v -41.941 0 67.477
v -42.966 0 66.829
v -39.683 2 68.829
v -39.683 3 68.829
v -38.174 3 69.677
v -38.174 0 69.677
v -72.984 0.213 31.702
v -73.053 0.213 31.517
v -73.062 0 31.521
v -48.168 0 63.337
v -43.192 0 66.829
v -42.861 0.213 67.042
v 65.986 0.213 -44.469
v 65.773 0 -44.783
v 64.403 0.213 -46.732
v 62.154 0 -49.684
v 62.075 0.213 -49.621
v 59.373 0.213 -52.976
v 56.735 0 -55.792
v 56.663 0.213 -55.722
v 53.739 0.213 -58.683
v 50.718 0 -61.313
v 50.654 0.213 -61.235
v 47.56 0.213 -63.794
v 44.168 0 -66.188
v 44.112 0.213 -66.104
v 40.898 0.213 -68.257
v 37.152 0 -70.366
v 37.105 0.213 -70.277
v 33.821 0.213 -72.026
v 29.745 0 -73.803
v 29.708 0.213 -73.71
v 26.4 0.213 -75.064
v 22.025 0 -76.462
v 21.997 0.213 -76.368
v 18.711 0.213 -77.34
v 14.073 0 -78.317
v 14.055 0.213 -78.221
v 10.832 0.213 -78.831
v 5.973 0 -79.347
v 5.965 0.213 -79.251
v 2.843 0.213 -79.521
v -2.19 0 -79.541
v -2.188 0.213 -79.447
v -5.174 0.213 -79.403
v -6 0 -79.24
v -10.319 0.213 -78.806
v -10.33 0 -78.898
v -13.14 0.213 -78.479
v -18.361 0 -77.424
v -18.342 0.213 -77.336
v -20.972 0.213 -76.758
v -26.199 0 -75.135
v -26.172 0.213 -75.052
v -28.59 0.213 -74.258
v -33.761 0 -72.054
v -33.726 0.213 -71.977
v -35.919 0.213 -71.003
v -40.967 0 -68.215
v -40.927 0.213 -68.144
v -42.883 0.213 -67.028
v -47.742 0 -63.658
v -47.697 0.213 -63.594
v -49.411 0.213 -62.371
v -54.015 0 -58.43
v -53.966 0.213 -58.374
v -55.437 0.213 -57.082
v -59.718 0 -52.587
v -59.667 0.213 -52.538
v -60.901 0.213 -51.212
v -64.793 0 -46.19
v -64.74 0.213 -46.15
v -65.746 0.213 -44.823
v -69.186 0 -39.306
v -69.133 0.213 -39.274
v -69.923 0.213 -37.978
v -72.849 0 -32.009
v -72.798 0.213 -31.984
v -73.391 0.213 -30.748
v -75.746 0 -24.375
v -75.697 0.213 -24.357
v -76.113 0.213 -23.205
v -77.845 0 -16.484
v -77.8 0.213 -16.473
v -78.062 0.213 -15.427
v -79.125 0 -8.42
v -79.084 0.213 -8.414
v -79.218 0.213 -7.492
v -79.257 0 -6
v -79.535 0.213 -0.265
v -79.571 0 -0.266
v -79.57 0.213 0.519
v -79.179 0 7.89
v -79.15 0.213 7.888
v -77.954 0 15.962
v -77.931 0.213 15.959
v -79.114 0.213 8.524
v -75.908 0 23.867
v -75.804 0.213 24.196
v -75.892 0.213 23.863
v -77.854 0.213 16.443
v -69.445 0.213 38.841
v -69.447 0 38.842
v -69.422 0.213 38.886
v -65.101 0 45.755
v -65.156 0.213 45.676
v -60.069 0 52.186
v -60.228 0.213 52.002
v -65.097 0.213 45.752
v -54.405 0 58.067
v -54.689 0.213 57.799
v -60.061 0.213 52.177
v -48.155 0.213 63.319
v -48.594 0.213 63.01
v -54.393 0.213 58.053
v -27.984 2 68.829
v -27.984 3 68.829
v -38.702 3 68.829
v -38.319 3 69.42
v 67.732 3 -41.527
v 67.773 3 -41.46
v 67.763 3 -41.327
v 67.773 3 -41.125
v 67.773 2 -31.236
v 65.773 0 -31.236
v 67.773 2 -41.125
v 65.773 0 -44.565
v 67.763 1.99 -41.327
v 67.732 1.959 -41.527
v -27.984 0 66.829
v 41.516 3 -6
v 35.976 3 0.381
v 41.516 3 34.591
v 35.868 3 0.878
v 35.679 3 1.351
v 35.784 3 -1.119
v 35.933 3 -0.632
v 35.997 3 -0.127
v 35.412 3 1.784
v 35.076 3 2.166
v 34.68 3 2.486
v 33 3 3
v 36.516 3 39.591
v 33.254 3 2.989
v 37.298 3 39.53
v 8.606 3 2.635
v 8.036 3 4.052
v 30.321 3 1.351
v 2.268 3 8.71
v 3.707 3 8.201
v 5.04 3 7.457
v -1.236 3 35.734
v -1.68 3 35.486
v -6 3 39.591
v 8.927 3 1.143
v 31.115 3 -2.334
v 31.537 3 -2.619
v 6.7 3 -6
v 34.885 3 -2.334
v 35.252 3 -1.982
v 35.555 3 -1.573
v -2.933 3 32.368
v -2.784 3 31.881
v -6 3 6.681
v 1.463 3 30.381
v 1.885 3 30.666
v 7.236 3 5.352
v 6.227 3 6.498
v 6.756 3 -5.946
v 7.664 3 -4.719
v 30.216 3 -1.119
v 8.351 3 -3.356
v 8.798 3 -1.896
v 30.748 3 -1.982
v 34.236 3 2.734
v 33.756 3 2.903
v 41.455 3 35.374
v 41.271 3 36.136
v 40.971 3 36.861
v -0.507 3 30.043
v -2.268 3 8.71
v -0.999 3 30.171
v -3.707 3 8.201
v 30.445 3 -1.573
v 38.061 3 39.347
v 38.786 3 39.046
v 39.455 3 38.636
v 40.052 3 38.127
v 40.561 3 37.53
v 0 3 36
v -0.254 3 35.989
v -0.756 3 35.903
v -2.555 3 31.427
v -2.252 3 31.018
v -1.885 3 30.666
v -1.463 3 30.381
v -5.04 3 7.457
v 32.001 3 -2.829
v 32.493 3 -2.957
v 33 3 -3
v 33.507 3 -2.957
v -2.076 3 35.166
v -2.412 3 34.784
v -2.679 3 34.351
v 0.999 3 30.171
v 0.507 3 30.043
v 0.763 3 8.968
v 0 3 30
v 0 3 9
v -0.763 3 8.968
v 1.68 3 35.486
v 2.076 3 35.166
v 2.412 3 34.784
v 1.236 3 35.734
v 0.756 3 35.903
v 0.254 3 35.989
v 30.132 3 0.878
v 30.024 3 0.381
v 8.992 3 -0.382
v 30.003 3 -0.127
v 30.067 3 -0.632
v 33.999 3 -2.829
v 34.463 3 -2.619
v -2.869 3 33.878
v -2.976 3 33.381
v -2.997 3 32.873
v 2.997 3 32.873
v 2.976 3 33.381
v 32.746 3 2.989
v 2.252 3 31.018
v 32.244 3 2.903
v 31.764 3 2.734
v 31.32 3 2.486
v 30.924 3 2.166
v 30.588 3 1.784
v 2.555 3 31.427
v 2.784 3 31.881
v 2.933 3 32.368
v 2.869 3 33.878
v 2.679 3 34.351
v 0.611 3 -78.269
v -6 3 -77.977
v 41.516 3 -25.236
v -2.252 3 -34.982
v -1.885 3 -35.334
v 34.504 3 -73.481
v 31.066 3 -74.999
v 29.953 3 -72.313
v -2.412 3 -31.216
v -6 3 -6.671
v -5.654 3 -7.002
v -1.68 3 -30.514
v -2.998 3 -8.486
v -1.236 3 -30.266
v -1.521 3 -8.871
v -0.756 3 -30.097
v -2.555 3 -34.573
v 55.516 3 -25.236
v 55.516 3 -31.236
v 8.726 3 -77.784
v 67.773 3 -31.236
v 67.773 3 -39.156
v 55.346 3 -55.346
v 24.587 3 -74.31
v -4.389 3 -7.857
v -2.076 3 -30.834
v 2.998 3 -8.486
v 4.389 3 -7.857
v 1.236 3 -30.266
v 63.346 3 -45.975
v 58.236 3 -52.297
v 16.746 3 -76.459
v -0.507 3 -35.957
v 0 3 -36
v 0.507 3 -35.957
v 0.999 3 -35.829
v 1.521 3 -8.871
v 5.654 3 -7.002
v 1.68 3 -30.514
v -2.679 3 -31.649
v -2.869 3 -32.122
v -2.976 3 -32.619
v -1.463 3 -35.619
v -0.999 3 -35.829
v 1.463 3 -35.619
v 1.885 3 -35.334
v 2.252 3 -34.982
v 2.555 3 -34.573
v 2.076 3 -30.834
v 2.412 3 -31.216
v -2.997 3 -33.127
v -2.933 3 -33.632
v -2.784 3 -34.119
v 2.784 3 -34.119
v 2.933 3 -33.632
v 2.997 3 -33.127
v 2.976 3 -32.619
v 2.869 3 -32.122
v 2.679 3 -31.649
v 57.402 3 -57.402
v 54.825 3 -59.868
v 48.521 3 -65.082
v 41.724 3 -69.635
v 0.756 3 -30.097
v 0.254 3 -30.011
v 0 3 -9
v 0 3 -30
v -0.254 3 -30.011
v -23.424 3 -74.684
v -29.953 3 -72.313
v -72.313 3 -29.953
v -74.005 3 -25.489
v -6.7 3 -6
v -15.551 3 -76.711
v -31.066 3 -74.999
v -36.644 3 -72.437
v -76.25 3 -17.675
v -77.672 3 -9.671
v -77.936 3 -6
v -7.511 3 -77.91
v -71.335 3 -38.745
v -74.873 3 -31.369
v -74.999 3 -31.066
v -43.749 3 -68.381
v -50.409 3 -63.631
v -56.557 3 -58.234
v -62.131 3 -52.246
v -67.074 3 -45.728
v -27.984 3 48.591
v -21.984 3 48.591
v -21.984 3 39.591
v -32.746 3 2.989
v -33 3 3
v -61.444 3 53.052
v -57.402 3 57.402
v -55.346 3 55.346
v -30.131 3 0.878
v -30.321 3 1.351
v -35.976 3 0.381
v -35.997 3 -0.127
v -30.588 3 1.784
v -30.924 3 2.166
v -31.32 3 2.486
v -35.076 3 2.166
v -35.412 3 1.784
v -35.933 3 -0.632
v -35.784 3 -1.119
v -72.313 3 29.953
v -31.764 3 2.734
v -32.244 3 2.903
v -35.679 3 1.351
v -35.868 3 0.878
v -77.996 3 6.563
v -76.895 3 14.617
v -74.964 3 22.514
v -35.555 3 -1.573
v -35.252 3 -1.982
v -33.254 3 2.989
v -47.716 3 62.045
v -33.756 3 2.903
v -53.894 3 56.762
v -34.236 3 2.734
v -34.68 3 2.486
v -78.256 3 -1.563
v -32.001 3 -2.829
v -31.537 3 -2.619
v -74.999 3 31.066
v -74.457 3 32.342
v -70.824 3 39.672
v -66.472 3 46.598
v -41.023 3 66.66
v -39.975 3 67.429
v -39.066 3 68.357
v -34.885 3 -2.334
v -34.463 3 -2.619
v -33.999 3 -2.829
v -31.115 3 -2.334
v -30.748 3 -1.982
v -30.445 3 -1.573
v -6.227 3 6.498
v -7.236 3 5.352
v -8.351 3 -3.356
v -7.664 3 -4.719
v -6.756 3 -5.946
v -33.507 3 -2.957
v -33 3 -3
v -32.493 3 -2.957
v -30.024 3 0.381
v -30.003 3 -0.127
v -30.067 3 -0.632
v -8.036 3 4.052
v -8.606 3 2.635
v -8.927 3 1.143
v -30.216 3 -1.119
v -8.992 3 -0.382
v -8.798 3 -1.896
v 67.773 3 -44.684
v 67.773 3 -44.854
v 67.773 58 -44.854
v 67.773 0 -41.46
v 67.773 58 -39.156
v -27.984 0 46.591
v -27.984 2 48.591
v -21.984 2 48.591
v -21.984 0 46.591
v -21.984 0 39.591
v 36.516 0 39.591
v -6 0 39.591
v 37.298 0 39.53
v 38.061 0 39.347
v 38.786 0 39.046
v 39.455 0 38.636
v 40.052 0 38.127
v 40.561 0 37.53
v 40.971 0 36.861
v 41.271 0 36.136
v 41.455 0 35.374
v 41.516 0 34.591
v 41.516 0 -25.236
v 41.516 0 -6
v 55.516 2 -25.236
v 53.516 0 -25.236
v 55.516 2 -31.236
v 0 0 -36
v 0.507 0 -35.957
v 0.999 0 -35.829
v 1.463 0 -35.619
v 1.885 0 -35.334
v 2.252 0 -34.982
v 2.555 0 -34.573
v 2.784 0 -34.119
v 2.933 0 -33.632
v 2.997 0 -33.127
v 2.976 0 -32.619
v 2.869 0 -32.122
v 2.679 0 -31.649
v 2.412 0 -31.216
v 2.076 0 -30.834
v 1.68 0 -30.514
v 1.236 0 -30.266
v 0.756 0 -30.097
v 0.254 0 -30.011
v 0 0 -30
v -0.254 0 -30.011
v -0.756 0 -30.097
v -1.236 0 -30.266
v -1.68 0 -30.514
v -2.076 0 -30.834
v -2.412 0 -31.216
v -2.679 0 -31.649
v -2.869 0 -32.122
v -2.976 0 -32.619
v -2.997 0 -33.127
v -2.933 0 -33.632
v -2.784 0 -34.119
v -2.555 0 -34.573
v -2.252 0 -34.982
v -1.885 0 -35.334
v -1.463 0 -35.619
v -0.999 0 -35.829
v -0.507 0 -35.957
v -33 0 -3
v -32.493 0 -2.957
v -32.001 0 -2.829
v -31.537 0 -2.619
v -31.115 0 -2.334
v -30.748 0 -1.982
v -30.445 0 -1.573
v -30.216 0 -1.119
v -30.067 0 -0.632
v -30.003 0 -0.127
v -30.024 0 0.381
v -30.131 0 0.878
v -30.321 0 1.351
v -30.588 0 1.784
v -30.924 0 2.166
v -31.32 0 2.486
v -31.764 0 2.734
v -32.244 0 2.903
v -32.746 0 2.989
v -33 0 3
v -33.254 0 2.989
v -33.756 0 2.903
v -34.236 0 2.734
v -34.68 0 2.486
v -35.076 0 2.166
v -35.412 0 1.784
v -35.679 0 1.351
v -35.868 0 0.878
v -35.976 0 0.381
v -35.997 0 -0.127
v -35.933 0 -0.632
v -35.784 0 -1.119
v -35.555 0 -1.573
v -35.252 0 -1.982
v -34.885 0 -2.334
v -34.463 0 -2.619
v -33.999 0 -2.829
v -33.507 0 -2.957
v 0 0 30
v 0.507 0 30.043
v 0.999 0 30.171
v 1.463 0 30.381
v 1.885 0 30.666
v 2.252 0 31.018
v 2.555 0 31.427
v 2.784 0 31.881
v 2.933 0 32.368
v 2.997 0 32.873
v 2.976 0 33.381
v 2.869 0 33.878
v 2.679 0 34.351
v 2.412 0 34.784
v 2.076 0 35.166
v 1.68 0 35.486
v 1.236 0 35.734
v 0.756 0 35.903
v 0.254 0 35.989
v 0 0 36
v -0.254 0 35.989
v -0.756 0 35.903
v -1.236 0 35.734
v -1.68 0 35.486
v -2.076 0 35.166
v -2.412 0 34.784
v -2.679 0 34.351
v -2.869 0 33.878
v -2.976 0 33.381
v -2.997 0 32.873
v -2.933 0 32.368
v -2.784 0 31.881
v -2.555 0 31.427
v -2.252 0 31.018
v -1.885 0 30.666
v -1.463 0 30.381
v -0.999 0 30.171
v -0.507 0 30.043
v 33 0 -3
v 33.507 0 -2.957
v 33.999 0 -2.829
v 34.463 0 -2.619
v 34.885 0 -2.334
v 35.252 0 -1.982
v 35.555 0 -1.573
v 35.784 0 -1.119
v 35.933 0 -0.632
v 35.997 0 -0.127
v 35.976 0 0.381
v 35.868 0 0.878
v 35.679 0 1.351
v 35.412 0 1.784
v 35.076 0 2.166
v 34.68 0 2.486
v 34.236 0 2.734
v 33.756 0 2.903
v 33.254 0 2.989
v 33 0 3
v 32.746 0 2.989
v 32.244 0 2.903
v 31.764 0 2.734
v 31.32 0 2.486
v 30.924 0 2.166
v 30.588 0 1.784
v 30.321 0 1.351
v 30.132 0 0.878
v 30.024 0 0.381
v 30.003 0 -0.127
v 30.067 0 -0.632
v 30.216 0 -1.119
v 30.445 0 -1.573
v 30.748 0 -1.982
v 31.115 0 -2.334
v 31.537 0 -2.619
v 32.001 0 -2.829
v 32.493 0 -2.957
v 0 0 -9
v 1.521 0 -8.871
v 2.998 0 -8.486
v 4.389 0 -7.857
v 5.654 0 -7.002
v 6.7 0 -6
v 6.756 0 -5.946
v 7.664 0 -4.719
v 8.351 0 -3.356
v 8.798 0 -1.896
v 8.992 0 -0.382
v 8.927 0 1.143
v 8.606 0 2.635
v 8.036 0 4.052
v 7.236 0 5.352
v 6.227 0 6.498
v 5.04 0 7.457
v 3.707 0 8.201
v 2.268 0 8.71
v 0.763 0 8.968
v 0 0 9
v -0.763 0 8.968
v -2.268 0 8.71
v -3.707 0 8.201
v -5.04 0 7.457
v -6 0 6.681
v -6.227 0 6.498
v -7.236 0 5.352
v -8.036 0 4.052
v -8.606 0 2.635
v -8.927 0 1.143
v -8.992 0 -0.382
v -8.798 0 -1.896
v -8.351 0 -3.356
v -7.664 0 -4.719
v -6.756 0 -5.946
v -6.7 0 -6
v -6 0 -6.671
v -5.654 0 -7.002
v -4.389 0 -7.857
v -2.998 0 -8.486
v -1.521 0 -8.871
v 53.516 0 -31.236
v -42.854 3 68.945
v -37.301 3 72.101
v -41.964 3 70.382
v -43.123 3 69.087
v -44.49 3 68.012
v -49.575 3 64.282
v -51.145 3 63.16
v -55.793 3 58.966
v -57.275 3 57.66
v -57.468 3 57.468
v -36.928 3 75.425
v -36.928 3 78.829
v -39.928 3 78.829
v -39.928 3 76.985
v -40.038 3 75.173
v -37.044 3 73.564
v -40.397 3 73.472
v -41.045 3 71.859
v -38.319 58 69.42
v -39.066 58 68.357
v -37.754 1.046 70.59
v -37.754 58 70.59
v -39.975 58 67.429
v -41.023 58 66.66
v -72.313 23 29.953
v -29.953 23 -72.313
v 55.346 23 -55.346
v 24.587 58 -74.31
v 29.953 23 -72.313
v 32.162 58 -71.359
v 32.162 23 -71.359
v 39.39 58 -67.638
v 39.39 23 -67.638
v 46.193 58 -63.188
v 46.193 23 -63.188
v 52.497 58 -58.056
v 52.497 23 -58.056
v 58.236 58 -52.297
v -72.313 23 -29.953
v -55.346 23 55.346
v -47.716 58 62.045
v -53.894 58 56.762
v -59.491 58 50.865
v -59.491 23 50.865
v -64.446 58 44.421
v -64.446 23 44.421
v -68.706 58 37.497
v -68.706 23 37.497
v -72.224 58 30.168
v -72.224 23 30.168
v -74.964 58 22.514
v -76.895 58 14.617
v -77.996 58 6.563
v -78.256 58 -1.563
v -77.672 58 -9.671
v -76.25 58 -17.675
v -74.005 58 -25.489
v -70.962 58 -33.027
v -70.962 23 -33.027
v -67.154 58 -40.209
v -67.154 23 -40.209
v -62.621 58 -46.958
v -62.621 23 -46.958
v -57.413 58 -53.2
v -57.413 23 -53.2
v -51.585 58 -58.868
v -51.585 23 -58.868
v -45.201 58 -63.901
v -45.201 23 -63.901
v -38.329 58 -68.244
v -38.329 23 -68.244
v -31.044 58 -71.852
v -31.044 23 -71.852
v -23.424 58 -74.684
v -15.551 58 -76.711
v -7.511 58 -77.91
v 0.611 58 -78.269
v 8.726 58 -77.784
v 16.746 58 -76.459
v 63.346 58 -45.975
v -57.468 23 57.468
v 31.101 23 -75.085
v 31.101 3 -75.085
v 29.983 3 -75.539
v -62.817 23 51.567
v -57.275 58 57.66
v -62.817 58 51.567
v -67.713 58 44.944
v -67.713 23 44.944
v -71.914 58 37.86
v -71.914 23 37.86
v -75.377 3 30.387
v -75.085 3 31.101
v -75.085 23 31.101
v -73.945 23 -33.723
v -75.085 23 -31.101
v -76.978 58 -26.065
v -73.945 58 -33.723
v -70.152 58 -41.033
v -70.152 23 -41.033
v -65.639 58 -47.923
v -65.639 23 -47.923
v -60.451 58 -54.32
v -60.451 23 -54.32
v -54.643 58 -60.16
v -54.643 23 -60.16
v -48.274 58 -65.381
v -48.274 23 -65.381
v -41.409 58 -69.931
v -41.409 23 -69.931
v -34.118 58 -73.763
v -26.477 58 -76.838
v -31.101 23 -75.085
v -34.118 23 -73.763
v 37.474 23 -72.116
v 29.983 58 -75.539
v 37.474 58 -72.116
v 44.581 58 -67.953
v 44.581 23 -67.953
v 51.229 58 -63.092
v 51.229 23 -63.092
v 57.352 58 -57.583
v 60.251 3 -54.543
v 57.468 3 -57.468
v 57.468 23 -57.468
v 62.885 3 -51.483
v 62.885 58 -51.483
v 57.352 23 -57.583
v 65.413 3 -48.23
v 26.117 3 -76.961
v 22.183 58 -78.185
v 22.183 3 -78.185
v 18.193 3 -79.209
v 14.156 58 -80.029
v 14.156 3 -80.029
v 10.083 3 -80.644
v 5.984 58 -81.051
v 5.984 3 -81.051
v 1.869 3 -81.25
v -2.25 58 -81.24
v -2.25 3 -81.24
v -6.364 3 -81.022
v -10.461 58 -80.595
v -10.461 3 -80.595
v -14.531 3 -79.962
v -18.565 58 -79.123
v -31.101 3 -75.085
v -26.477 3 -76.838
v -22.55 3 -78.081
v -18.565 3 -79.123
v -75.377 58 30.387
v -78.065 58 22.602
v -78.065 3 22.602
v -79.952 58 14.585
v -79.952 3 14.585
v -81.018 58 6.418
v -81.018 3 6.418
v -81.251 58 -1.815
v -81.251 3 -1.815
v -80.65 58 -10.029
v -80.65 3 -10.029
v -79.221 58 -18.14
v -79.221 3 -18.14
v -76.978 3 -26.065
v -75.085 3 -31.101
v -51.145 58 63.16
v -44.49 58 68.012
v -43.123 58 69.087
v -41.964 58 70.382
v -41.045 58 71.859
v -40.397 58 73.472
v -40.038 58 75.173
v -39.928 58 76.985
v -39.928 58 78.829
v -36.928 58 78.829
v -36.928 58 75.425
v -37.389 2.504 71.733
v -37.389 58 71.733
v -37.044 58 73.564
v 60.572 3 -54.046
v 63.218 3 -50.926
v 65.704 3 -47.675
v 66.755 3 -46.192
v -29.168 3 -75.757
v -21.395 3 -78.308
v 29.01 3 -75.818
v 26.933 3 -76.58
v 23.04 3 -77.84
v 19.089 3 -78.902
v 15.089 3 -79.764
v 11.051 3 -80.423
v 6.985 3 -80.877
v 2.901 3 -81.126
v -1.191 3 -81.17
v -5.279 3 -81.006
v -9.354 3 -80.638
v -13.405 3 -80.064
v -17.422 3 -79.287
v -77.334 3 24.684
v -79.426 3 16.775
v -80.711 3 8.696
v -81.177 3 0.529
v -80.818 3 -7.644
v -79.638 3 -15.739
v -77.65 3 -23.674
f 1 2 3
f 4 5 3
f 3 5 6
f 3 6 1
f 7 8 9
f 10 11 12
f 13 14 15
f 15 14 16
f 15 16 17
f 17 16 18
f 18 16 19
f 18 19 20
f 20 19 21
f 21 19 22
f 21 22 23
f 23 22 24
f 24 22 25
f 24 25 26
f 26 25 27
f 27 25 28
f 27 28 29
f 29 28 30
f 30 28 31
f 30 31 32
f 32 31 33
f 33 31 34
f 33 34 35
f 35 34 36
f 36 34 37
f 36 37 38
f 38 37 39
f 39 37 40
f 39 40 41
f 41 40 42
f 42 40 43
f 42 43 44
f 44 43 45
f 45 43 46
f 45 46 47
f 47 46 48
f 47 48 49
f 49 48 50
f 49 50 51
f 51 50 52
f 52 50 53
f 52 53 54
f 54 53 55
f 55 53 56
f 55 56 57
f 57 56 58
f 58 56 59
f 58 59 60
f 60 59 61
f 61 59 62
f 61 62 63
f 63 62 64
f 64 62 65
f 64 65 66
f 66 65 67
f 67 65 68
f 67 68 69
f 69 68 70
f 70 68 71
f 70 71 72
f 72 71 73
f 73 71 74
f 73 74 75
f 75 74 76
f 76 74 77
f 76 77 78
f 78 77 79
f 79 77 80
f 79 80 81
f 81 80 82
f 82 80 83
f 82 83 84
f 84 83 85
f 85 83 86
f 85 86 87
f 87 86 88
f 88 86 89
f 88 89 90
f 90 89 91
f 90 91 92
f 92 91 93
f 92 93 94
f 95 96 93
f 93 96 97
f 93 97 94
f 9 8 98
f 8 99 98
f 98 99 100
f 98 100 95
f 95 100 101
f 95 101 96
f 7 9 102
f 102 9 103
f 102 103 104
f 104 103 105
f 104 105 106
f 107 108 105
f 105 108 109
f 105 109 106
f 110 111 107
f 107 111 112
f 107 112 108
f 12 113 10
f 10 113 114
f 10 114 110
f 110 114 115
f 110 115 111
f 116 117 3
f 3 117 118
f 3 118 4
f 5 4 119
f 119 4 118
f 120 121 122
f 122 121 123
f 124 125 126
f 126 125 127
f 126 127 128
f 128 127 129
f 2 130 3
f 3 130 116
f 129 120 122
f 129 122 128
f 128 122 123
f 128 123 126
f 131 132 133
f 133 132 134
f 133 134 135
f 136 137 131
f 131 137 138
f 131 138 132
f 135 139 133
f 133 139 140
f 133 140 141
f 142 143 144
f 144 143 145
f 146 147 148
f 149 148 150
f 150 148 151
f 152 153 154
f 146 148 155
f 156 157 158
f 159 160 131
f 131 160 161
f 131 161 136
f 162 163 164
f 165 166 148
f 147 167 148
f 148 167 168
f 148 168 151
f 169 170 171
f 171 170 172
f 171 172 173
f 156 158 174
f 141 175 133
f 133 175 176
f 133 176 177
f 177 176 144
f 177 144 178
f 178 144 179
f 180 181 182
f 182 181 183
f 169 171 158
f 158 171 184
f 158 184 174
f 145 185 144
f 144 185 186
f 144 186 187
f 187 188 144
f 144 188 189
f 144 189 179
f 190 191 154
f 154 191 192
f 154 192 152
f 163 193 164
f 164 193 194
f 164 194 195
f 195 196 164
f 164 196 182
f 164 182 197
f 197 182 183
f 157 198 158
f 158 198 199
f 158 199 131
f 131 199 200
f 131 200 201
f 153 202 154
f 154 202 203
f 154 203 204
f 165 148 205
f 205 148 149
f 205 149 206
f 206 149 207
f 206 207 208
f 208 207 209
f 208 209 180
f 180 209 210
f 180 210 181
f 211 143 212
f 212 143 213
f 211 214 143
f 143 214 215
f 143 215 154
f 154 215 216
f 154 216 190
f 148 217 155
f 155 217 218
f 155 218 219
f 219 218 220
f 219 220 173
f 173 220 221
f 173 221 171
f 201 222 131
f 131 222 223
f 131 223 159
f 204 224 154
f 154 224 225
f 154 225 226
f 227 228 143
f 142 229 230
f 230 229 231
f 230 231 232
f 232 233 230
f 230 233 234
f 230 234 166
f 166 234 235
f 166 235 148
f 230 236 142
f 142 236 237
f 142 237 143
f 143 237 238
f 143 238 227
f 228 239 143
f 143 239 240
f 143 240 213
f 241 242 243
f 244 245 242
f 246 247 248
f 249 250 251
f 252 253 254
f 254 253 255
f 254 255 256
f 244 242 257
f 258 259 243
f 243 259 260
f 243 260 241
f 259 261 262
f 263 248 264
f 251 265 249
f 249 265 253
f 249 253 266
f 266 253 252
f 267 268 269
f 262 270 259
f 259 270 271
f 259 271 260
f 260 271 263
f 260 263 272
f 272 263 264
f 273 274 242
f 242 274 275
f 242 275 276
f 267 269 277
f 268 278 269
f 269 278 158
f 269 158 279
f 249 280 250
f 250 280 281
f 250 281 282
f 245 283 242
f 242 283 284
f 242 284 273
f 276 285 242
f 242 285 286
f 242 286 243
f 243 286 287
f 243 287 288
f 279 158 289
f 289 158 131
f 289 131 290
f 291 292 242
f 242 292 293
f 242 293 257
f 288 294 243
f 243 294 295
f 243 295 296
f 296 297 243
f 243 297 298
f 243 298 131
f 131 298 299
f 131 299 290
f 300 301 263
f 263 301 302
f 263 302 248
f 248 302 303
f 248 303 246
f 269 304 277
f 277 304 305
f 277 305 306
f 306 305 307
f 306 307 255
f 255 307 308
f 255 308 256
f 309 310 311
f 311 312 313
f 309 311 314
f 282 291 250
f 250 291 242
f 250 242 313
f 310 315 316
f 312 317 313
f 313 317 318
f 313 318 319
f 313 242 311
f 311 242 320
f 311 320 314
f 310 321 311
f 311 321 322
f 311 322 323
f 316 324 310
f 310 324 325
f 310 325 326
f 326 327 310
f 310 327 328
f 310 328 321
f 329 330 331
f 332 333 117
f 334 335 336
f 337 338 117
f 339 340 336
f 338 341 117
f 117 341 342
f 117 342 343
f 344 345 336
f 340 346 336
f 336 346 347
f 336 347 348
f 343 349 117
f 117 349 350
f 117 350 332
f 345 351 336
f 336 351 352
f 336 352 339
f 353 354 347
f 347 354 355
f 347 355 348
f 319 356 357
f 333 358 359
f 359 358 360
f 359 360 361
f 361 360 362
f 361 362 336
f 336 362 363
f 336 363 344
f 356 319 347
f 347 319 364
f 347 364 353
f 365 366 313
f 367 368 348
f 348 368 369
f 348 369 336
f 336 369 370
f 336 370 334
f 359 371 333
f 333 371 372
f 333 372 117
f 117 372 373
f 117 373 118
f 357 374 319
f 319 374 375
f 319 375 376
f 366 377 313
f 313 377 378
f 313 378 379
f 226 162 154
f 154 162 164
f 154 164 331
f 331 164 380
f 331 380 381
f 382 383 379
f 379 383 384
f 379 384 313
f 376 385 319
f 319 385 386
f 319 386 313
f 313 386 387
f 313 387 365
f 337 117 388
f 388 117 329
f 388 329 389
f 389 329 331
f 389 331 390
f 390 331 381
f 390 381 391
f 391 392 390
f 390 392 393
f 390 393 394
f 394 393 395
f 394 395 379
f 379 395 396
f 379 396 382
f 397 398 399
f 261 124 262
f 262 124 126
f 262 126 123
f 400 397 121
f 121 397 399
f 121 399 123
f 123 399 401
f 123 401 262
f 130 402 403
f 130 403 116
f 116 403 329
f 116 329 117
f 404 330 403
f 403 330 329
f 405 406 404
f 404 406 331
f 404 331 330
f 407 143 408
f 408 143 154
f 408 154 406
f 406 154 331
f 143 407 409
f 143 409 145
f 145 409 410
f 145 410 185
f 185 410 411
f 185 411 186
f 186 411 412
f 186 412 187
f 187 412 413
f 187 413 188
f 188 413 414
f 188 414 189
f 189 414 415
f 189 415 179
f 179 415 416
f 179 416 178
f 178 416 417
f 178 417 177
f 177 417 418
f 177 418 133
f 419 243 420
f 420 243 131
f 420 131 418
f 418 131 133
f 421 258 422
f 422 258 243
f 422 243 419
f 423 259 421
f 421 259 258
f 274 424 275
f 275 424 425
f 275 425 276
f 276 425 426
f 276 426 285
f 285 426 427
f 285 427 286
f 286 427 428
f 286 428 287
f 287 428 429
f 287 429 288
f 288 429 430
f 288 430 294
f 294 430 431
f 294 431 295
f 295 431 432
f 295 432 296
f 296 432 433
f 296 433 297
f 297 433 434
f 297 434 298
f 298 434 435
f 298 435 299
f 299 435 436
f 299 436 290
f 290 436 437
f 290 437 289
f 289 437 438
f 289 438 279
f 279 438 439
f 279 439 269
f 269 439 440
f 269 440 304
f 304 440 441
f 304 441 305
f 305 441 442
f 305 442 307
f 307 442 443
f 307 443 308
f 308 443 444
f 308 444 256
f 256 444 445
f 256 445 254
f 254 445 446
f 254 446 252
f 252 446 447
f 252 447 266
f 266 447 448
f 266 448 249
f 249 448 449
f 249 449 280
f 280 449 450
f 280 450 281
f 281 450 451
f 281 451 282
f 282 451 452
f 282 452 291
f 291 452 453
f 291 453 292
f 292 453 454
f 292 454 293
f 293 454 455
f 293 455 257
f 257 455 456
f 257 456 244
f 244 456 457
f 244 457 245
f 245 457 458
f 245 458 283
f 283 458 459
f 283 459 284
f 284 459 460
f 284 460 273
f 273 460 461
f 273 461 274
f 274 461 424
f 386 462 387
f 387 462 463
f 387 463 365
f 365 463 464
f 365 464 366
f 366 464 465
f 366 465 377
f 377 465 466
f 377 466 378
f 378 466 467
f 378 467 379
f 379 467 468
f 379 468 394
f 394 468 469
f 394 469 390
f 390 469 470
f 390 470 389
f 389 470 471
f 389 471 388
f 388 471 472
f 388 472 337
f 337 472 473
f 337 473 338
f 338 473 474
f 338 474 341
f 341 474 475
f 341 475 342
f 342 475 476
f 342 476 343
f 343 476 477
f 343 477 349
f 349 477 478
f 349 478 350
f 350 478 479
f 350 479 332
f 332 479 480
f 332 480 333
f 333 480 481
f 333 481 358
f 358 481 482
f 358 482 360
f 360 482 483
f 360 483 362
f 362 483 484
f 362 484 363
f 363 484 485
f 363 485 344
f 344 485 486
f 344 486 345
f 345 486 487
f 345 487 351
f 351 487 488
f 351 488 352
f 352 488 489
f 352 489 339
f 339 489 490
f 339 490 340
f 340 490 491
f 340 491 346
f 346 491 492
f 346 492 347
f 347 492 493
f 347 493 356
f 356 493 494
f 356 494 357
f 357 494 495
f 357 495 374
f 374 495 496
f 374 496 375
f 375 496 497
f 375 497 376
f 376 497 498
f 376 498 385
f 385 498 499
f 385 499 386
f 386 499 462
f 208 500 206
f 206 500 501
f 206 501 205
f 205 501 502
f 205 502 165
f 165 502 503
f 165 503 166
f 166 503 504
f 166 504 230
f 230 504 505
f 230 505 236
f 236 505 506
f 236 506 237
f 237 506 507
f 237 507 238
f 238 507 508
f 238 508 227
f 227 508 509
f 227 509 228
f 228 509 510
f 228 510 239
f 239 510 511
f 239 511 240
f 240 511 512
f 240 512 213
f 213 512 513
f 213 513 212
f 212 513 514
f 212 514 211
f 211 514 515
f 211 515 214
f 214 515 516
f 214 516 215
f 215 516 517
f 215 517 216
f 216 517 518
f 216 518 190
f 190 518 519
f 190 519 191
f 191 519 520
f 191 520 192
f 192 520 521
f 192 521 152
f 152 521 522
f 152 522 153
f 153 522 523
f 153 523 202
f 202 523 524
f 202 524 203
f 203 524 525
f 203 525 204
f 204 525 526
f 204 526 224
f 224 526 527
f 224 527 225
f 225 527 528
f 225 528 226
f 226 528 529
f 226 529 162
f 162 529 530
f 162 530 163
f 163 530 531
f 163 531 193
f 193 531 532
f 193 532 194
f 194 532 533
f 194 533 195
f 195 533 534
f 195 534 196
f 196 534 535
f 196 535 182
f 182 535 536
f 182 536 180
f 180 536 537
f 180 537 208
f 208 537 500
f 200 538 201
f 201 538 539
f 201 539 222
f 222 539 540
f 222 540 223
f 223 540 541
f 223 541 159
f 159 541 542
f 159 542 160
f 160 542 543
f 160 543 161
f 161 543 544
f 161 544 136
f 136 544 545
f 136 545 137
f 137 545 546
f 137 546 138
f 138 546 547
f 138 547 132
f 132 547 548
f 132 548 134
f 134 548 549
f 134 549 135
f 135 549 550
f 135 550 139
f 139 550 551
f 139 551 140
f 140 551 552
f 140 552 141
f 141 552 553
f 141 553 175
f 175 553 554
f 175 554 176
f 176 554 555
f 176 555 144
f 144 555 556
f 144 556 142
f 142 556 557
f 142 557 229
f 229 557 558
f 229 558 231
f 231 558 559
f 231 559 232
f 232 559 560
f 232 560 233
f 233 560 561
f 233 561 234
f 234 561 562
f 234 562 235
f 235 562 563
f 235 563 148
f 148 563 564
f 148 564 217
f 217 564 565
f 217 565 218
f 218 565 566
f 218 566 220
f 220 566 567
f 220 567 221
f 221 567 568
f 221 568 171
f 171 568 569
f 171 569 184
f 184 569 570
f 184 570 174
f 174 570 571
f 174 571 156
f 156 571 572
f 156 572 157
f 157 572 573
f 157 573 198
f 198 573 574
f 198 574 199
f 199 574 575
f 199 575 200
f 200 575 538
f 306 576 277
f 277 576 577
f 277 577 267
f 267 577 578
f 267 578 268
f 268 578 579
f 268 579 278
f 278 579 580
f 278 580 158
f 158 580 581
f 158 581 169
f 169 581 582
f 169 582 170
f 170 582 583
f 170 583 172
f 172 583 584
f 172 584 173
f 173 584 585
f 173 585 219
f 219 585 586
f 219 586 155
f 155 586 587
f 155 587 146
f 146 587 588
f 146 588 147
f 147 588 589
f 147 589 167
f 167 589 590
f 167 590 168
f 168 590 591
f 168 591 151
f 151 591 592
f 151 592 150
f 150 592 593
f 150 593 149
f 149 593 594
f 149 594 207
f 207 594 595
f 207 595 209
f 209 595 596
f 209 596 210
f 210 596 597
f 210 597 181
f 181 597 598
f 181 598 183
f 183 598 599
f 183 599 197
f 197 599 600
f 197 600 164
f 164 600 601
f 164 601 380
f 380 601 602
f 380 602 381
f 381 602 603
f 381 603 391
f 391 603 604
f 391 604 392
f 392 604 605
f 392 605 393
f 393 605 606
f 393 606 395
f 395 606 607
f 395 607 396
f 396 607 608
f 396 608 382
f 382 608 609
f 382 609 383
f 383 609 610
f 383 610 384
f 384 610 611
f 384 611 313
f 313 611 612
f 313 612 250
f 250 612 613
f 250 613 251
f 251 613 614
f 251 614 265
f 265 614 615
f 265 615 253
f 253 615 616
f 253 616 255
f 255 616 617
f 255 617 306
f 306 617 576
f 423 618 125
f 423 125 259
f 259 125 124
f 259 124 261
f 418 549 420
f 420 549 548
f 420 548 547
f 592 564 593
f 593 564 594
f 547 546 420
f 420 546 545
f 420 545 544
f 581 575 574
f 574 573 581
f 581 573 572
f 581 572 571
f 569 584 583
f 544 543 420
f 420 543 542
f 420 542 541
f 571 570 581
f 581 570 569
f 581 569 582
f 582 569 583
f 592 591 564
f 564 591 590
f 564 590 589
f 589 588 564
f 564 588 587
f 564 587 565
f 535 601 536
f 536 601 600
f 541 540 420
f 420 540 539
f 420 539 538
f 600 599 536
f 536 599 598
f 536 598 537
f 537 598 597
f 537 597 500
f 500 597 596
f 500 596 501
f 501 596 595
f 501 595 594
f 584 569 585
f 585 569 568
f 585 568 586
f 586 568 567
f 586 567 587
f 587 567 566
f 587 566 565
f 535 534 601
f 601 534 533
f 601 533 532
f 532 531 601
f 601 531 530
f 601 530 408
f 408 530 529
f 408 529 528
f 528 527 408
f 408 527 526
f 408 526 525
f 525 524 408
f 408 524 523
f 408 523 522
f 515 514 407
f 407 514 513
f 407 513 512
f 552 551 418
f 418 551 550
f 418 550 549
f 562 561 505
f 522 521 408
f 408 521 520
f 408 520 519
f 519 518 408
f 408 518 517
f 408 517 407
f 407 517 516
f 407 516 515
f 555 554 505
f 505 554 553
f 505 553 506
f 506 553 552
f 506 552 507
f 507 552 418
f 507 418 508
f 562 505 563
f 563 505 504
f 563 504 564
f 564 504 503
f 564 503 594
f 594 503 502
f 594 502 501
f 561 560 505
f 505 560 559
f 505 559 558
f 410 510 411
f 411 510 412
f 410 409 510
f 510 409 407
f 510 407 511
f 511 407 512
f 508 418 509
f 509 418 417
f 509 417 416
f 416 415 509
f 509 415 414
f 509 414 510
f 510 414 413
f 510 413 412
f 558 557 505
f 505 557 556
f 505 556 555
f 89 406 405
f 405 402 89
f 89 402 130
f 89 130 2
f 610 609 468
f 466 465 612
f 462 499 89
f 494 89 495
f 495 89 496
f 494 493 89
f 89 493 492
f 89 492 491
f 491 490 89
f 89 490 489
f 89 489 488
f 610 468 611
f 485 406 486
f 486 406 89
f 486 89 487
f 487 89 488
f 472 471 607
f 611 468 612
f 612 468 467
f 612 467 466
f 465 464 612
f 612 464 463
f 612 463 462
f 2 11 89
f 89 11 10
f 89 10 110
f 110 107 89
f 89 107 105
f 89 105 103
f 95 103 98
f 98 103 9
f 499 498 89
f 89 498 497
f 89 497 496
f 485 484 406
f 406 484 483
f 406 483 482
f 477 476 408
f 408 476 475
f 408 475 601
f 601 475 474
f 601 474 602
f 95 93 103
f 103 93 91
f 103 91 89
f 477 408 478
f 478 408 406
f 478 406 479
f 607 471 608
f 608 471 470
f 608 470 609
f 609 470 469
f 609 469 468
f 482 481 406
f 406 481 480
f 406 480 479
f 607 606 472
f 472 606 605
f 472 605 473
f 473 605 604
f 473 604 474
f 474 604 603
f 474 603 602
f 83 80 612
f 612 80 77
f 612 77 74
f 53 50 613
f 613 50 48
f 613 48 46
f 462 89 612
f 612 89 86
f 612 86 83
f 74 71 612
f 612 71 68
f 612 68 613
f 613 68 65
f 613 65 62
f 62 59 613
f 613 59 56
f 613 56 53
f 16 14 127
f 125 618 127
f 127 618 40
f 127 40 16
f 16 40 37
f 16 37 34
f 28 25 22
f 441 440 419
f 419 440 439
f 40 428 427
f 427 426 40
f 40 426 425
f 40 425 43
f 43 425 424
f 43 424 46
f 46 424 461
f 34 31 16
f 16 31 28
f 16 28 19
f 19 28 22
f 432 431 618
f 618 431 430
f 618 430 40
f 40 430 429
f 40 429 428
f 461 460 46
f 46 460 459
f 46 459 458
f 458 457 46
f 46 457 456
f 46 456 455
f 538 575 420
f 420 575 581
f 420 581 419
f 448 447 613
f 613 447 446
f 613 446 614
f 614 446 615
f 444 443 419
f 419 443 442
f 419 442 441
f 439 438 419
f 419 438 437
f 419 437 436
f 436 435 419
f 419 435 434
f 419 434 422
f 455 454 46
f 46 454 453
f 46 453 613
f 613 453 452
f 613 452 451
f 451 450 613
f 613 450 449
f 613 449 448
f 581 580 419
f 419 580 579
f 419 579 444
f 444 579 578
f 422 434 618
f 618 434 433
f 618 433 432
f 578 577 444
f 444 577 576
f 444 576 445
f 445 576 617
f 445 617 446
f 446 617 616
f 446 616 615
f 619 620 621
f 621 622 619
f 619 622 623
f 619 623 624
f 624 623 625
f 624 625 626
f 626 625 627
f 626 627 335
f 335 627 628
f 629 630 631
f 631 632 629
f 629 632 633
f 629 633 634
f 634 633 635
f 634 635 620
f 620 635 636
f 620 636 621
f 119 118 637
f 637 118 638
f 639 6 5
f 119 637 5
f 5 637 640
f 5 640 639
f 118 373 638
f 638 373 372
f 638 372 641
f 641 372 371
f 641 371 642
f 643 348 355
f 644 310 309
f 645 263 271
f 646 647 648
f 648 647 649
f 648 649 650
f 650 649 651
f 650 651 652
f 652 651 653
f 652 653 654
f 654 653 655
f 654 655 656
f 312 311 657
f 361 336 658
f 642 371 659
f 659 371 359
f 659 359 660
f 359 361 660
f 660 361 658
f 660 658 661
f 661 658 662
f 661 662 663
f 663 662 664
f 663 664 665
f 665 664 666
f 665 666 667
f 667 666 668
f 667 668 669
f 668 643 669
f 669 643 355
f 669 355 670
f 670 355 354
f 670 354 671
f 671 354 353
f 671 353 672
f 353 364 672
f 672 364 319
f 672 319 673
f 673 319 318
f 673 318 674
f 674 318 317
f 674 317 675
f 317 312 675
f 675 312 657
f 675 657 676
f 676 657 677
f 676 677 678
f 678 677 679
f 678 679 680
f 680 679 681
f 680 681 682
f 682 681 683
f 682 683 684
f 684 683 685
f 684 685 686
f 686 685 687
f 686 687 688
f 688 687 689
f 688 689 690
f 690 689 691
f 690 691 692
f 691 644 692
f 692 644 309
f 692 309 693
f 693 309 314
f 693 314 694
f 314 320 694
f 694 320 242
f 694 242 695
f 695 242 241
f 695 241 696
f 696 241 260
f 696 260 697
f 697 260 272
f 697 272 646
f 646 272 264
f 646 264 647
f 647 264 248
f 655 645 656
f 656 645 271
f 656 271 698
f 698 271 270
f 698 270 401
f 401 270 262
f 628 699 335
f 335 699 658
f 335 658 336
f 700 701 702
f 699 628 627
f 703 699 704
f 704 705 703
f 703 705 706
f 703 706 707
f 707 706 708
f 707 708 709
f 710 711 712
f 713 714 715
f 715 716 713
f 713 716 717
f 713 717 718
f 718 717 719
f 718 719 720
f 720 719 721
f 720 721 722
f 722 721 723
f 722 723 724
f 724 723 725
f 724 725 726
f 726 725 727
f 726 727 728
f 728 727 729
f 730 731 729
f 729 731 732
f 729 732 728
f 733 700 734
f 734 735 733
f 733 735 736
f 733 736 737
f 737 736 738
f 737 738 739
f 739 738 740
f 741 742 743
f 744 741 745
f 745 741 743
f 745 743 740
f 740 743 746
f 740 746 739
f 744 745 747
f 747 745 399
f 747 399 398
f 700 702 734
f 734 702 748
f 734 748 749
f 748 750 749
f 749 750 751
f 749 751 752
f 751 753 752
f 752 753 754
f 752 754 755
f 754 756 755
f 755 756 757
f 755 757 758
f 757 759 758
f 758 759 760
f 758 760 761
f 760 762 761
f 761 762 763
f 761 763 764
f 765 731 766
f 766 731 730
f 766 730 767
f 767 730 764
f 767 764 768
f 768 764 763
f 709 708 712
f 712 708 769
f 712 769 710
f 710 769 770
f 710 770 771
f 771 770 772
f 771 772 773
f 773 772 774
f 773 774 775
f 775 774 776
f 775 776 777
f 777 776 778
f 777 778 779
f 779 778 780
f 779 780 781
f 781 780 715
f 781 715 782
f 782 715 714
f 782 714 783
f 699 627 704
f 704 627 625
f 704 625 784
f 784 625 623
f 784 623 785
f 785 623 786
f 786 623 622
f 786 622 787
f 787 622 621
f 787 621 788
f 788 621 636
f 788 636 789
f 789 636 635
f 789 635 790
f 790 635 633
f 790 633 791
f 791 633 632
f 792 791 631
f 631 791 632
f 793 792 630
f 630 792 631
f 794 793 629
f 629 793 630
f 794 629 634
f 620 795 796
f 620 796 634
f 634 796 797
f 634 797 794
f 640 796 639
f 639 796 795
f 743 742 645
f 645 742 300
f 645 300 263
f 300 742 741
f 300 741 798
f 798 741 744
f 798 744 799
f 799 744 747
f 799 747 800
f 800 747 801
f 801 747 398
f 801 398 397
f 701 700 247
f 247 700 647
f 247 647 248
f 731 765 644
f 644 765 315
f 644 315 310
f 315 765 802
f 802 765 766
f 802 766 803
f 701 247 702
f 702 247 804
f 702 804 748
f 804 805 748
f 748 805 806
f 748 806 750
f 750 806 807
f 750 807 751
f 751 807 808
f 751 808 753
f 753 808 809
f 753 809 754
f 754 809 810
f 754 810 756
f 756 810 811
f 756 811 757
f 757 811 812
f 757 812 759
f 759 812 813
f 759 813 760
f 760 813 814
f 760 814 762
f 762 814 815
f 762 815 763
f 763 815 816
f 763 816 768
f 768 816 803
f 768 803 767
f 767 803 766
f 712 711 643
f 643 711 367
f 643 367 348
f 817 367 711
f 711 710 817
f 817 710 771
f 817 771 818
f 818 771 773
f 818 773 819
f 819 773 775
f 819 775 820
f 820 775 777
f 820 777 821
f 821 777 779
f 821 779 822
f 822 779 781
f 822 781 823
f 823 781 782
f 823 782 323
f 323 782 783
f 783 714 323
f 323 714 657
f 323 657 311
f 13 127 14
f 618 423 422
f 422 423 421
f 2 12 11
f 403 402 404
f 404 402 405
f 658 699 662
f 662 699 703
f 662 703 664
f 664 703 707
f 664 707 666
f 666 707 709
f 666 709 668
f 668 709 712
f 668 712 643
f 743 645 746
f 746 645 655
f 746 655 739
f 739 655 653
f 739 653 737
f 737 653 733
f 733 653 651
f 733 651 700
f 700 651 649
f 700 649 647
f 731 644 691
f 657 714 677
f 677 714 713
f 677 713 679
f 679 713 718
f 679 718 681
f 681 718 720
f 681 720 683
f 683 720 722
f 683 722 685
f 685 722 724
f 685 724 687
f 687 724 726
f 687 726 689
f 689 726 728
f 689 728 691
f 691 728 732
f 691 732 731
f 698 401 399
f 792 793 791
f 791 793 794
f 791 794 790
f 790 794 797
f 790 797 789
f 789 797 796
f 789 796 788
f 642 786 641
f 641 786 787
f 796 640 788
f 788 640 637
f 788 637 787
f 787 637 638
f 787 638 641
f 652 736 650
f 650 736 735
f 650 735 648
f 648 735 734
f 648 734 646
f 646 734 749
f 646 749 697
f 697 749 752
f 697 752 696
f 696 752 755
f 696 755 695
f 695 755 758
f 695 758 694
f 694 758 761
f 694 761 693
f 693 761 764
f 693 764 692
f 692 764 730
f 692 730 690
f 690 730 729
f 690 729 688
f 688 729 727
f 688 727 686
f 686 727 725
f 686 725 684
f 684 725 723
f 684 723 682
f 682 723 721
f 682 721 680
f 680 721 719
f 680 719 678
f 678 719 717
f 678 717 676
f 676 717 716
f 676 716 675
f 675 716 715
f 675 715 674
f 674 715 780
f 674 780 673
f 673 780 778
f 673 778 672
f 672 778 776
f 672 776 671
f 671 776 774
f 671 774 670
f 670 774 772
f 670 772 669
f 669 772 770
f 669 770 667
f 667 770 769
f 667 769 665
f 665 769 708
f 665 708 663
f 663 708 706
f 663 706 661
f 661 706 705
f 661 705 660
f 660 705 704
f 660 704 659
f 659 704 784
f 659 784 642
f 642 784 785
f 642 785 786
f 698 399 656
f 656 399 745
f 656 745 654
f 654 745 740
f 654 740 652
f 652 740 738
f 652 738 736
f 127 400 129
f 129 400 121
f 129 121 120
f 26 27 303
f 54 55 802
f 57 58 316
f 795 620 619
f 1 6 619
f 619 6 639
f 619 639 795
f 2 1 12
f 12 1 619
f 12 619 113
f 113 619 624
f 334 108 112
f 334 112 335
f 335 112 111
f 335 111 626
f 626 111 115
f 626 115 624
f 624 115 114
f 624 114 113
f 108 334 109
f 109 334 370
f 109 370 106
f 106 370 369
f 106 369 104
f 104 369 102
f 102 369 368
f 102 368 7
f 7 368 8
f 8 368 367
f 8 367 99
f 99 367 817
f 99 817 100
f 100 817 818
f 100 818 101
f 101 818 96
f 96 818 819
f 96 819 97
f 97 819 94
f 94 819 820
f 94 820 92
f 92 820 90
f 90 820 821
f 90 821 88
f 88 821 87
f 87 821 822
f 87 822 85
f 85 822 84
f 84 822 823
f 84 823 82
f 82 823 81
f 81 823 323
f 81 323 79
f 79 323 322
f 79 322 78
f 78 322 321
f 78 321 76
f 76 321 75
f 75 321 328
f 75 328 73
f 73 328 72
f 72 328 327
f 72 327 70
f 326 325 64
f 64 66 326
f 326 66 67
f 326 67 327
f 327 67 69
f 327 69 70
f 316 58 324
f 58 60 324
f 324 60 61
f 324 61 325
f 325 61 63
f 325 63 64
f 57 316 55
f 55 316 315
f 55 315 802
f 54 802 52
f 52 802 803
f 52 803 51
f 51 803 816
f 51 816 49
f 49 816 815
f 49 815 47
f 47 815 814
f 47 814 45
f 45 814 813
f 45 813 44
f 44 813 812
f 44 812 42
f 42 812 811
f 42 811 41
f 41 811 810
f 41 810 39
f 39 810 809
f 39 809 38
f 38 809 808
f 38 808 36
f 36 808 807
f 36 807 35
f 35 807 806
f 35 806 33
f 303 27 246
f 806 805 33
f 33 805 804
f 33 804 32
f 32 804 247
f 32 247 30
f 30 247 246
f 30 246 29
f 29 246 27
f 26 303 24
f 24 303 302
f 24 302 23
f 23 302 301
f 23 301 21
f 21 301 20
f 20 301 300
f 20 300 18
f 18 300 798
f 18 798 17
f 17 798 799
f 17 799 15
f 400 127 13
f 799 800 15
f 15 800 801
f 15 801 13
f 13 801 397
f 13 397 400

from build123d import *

# Parameters (mm, degrees)
SKETCH1_R           = 9
SKETCH1_R_2         = 3
BOSS_EXTRUDE1_DEPTH = 3
BOSS_EXTRUDE5_DEPTH = 20
CHAMFER1_SIZE       = 2
CHAMFER2_SIZE       = 2
CHAMFER3_SIZE       = 2
CHAMFER4_SIZE       = 2
FILLET3_R           = 2
BOSS_EXTRUDE6_DEPTH = 35
CUT_EXTRUDE1_START  = -35
CUT_EXTRUDE1_DEPTH  = 35


with BuildPart() as part:
    # Sketch1 → Boss-Extrude1 (new body)
    with BuildSketch(Plane(origin=(0, 0, 0), x_dir=(1, 0, 0), z_dir=(0, 1, 0))):
        with BuildLine():
            Line((26.016071882, -39.591378024), (36.516071882, -39.591378024))
            ThreePointArc((36.516071882, -39.591378024), (40.051605788, -38.12691193), (41.516071882, -34.591378024))
            Line((41.516071882, -34.591378024), (41.516071882, -22.764050167))
            Line((41.516071882, -22.764050167), (41.516071882, 25.235949833))
            Line((41.516071882, 25.235949833), (55.516071882, 25.235949833))
            Line((55.516071882, 25.235949833), (55.516071882, 31.235949833))
            Line((55.516071882, 31.235949833), (67.773200773, 31.235949833))
            Line((67.773200773, 31.235949833), (67.773200773, 41.69443681))
            ThreePointArc((67.773200773, 41.69443681), (-56.98852563, 55.53324005), (-39.927712001, -68.828850188))
            Line((-39.927712001, -68.828850188), (-27.983928118, -68.828850188))
            Line((-27.983928118, -68.828850188), (-27.983928118, -48.591378024))
            Line((-27.983928118, -48.591378024), (-21.983928118, -48.591378024))
            Line((-21.983928118, -48.591378024), (-21.983928118, -39.591378024))
            Line((-21.983928118, -39.591378024), (26.016071882, -39.591378024))
        make_face()
        with Locations(Location((0, 0, 0), (0, 0, 270))):
            Circle(SKETCH1_R, mode=Mode.SUBTRACT)
        with Locations(Location((33, 0, 0), (0, 0, 270))):
            Circle(SKETCH1_R_2, mode=Mode.SUBTRACT)
        with Locations(Location((0, -33, 0), (0, 0, 270))):
            Circle(SKETCH1_R_2, mode=Mode.SUBTRACT)
        with Locations(Location((-33, 0, 0), (0, 0, 270))):
            Circle(SKETCH1_R_2, mode=Mode.SUBTRACT)
        with Locations(Location((0, 33, 0), (0, 0, 270))):
            Circle(SKETCH1_R_2, mode=Mode.SUBTRACT)
    extrude(amount=BOSS_EXTRUDE1_DEPTH)

    # Sketch2 → Boss-Extrude5 (add)
    with BuildSketch(Plane(origin=(0, 3, 0), x_dir=(1, 0, 0), z_dir=(0, 1, 0))):
        with BuildLine():
            Line((67.773200773, 39.156481082), (67.773200773, 44.853755219))
            ThreePointArc((67.773200773, 44.853755219), (62.937243445, 51.419543831), (57.467669607, 57.467669607))
            Line((57.467669607, 57.467669607), (55.346349264, 55.346349264))
            ThreePointArc((55.346349264, 55.346349264), (62.089724256, 47.658188126), (67.773200773, 39.156481082))
        make_face()
        with BuildLine():
            Line((-39.927712001, -76.985232291), (-39.927712001, -78.828850188))
            Line((-39.927712001, -78.828850188), (-36.927712001, -78.828850188))
            Line((-36.927712001, -78.828850188), (-36.927712001, -75.424551151))
            ThreePointArc((-36.927712001, -75.424551151), (-37.043512595, -73.56428019), (-37.389126407, -71.732731959))
            ThreePointArc((-37.389126407, -71.732731959), (-37.554188596, -71.15585041), (-37.753552772, -70.589907151))
            ThreePointArc((-37.753552772, -70.589907151), (-39.065927712, -68.356737552), (-41.023031213, -66.659940472))
            ThreePointArc((-41.023031213, -66.659940472), (-48.515602747, -61.422089217), (-55.346349264, -55.346349264))
            Line((-55.346349264, -55.346349264), (-57.467669607, -57.467669607))
            ThreePointArc((-57.467669607, -57.467669607), (-51.250804692, -63.074726465), (-44.490100887, -68.012476968))
            ThreePointArc((-44.490100887, -68.012476968), (-41.472337786, -71.100334086), (-40.037635444, -75.172604325))
            ThreePointArc((-40.037635444, -75.172604325), (-39.955218081, -76.077253312), (-39.927712001, -76.985232291))
        make_face()
        with BuildLine():
            Line((29.953228379, 72.313490189), (31.101278676, 75.085128787))
            ThreePointArc((31.101278676, 75.085128787), (0, 81.271557757), (-31.101278676, 75.085128787))
            Line((-31.101278676, 75.085128787), (-29.953228379, 72.313490189))
            ThreePointArc((-29.953228379, 72.313490189), (0, 78.271557757), (29.953228379, 72.313490189))
        make_face()
        with BuildLine():
            Line((-72.313490189, -29.953228379), (-75.085128787, -31.101278676))
            ThreePointArc((-75.085128787, -31.101278676), (-81.271557757, 0), (-75.085128787, 31.101278676))
            Line((-75.085128787, 31.101278676), (-72.313490189, 29.953228379))
            ThreePointArc((-72.313490189, 29.953228379), (-78.271557757, 0), (-72.313490189, -29.953228379))
        make_face()
    extrude(amount=BOSS_EXTRUDE5_DEPTH)

    # Chamfer1
    chamfer1_edges = [part.edges().sort_by_distance(p)[0] for p in [
        (67.773200773, 0, -36.465193321),
    ]]
    chamfer(chamfer1_edges, length=CHAMFER1_SIZE)

    # Chamfer2
    chamfer2_edges = [part.edges().sort_by_distance(p)[0] for p in [
        (55.516071882, 0, -28.235949833),
    ]]
    chamfer(chamfer2_edges, length=CHAMFER2_SIZE)

    # Chamfer3
    chamfer3_edges = [part.edges().sort_by_distance(p)[0] for p in [
        (-33.955820059, 0, 68.828850188),
    ]]
    chamfer(chamfer3_edges, length=CHAMFER3_SIZE)

    # Chamfer4
    chamfer4_edges = [part.edges().sort_by_distance(p)[0] for p in [
        (-24.983928118, 0, 48.591378024),
    ]]
    chamfer(chamfer4_edges, length=CHAMFER4_SIZE)

    # Fillet3
    fillet3_edges = [part.edges().sort_by_distance(p)[0] for p in [
        (67.773200773, 2.5, -41.69443681),
    ]]
    fillet(fillet3_edges, radius=FILLET3_R)

    # Sketch3 → Boss-Extrude6 (add)
    with BuildSketch(Plane(origin=(0, 23, 0), x_dir=(1, 0, 0), z_dir=(0, 1, 0))):
        with BuildLine():
            Line((67.773200773, 39.156481082), (67.773200773, 44.853755219))
            ThreePointArc((67.773200773, 44.853755219), (-57.621369969, 57.313557062), (-44.490100887, -68.012476968))
            ThreePointArc((-44.490100887, -68.012476968), (-41.472337786, -71.100334086), (-40.037635444, -75.172604325))
            ThreePointArc((-40.037635444, -75.172604325), (-39.955218081, -76.077253312), (-39.927712001, -76.985232291))
            Line((-39.927712001, -76.985232291), (-39.927712001, -78.828850188))
            Line((-39.927712001, -78.828850188), (-36.927712001, -78.828850188))
            Line((-36.927712001, -78.828850188), (-36.927712001, -75.424551151))
            ThreePointArc((-36.927712001, -75.424551151), (-37.043512595, -73.56428019), (-37.389126407, -71.732731959))
            ThreePointArc((-37.389126407, -71.732731959), (-37.554188596, -71.15585041), (-37.753552772, -70.589907151))
            ThreePointArc((-37.753552772, -70.589907151), (-39.065927712, -68.356737552), (-41.023031213, -66.659940472))
            ThreePointArc((-41.023031213, -66.659940472), (-54.572627392, 56.109402894), (67.773200773, 39.156481082))
        make_face()
    extrude(amount=BOSS_EXTRUDE6_DEPTH)

    # Sketch4 → Revolve1 (revolve)
    with BuildSketch(Plane(origin=(0, 0, 0), x_dir=(0, 0, -1), z_dir=(1, 0, 0)), mode=Mode.PRIVATE) as revolve1_sk:
        Polygon((79.448939848, 0), (81.178234321, 3), (79.448939848, 3), align=None)
    revolve(revolve1_sk.sketch.rotate(Axis((0, 0, 0), (0, -1, 0)), 207.35414034), axis=Axis((0, 0, 0), (0, -1, 0)))

    # Sketch5 → Cut-Extrude1 (cut)
    with BuildSketch(Plane(origin=(0, 3, 0), x_dir=(1, 0, 0), z_dir=(0, 1, 0)).offset(CUT_EXTRUDE1_START)):
        with BuildLine():
            Line((67.773200773, 44.684437834), (67.773200773, 41.459948143))
            ThreePointArc((67.773200773, 41.459948143), (57.505508315, -54.8201656), (-38.173959697, -69.676989344))
            ThreePointArc((-38.173959697, -69.676989344), (-37.949405437, -70.126839575), (-37.753552772, -70.589907151))
            ThreePointArc((-37.753552772, -70.589907151), (-37.554188596, -71.15585041), (-37.389126407, -71.732731959))
            ThreePointArc((-37.389126407, -71.732731959), (-37.343653711, -71.916668059), (-37.300507998, -72.101163864))
            ThreePointArc((-37.300507998, -72.101163864), (60.347870238, -54.295858822), (67.773200773, 44.684437834))
        make_face()
    extrude(amount=CUT_EXTRUDE1_DEPTH, mode=Mode.SUBTRACT)


solid = part.part
